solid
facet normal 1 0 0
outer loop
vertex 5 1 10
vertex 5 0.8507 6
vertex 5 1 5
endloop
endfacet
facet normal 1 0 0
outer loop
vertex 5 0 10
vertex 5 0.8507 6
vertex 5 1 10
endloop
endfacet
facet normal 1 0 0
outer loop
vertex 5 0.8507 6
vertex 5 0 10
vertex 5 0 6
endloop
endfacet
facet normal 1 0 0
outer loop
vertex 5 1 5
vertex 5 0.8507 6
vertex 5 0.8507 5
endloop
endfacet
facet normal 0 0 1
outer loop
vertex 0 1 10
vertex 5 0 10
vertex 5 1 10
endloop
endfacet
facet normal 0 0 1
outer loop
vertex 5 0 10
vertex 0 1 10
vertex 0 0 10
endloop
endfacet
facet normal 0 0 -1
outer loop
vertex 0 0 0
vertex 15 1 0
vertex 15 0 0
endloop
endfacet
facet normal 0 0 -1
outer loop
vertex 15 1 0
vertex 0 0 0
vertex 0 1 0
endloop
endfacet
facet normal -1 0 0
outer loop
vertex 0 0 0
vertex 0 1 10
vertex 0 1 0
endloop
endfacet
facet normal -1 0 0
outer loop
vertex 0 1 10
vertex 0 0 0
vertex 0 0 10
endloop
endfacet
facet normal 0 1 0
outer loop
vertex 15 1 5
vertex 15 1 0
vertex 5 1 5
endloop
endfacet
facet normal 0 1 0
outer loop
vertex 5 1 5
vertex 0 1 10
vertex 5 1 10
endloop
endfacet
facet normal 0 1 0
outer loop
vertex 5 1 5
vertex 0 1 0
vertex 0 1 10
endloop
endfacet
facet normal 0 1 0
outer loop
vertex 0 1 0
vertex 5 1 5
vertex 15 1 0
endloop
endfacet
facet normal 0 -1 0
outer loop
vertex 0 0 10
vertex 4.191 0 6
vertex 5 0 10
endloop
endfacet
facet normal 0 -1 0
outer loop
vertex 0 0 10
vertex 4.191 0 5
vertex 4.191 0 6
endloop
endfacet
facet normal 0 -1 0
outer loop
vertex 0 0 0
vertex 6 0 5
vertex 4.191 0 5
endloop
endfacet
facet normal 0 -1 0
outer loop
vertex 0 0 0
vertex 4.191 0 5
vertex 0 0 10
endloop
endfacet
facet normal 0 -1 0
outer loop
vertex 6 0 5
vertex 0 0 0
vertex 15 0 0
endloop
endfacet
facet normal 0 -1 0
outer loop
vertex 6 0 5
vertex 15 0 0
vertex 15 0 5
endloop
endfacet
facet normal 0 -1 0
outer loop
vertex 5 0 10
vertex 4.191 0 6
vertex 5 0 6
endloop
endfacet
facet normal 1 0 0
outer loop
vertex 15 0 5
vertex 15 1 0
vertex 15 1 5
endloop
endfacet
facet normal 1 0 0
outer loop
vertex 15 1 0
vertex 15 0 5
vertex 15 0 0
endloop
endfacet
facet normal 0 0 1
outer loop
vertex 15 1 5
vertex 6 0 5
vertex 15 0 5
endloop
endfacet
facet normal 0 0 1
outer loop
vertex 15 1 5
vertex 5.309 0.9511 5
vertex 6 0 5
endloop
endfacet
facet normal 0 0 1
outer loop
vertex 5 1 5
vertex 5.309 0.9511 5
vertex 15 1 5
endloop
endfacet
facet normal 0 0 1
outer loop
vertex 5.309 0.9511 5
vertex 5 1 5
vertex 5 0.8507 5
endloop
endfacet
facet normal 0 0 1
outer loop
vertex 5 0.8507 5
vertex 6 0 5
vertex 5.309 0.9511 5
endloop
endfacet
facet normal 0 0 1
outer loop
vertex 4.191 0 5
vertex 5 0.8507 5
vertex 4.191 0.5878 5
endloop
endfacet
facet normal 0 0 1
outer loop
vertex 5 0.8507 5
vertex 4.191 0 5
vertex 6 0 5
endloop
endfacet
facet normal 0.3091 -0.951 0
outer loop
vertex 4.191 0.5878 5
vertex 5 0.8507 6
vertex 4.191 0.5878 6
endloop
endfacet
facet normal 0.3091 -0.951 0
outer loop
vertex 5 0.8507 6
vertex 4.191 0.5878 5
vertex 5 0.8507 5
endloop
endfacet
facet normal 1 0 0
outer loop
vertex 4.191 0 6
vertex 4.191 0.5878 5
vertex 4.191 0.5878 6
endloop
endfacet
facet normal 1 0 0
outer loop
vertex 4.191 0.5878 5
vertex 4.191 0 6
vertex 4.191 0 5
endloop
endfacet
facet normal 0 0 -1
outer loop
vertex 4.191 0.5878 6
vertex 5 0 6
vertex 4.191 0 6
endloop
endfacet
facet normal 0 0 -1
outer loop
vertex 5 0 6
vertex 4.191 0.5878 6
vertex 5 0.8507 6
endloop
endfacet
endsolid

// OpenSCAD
module l_shaped_bracket() {
    difference() {
        union() {
            // Vertical section
            cube([5, 1, 10]);
            
            // Horizontal section
            translate([5, 0, 0])
            cube([10, 1, 5]);
        }
        // Rounding the corner
        translate([5, 0, 5])
        cylinder(r=1, h=1, center=false);
    }
}

l_shaped_bracket();
